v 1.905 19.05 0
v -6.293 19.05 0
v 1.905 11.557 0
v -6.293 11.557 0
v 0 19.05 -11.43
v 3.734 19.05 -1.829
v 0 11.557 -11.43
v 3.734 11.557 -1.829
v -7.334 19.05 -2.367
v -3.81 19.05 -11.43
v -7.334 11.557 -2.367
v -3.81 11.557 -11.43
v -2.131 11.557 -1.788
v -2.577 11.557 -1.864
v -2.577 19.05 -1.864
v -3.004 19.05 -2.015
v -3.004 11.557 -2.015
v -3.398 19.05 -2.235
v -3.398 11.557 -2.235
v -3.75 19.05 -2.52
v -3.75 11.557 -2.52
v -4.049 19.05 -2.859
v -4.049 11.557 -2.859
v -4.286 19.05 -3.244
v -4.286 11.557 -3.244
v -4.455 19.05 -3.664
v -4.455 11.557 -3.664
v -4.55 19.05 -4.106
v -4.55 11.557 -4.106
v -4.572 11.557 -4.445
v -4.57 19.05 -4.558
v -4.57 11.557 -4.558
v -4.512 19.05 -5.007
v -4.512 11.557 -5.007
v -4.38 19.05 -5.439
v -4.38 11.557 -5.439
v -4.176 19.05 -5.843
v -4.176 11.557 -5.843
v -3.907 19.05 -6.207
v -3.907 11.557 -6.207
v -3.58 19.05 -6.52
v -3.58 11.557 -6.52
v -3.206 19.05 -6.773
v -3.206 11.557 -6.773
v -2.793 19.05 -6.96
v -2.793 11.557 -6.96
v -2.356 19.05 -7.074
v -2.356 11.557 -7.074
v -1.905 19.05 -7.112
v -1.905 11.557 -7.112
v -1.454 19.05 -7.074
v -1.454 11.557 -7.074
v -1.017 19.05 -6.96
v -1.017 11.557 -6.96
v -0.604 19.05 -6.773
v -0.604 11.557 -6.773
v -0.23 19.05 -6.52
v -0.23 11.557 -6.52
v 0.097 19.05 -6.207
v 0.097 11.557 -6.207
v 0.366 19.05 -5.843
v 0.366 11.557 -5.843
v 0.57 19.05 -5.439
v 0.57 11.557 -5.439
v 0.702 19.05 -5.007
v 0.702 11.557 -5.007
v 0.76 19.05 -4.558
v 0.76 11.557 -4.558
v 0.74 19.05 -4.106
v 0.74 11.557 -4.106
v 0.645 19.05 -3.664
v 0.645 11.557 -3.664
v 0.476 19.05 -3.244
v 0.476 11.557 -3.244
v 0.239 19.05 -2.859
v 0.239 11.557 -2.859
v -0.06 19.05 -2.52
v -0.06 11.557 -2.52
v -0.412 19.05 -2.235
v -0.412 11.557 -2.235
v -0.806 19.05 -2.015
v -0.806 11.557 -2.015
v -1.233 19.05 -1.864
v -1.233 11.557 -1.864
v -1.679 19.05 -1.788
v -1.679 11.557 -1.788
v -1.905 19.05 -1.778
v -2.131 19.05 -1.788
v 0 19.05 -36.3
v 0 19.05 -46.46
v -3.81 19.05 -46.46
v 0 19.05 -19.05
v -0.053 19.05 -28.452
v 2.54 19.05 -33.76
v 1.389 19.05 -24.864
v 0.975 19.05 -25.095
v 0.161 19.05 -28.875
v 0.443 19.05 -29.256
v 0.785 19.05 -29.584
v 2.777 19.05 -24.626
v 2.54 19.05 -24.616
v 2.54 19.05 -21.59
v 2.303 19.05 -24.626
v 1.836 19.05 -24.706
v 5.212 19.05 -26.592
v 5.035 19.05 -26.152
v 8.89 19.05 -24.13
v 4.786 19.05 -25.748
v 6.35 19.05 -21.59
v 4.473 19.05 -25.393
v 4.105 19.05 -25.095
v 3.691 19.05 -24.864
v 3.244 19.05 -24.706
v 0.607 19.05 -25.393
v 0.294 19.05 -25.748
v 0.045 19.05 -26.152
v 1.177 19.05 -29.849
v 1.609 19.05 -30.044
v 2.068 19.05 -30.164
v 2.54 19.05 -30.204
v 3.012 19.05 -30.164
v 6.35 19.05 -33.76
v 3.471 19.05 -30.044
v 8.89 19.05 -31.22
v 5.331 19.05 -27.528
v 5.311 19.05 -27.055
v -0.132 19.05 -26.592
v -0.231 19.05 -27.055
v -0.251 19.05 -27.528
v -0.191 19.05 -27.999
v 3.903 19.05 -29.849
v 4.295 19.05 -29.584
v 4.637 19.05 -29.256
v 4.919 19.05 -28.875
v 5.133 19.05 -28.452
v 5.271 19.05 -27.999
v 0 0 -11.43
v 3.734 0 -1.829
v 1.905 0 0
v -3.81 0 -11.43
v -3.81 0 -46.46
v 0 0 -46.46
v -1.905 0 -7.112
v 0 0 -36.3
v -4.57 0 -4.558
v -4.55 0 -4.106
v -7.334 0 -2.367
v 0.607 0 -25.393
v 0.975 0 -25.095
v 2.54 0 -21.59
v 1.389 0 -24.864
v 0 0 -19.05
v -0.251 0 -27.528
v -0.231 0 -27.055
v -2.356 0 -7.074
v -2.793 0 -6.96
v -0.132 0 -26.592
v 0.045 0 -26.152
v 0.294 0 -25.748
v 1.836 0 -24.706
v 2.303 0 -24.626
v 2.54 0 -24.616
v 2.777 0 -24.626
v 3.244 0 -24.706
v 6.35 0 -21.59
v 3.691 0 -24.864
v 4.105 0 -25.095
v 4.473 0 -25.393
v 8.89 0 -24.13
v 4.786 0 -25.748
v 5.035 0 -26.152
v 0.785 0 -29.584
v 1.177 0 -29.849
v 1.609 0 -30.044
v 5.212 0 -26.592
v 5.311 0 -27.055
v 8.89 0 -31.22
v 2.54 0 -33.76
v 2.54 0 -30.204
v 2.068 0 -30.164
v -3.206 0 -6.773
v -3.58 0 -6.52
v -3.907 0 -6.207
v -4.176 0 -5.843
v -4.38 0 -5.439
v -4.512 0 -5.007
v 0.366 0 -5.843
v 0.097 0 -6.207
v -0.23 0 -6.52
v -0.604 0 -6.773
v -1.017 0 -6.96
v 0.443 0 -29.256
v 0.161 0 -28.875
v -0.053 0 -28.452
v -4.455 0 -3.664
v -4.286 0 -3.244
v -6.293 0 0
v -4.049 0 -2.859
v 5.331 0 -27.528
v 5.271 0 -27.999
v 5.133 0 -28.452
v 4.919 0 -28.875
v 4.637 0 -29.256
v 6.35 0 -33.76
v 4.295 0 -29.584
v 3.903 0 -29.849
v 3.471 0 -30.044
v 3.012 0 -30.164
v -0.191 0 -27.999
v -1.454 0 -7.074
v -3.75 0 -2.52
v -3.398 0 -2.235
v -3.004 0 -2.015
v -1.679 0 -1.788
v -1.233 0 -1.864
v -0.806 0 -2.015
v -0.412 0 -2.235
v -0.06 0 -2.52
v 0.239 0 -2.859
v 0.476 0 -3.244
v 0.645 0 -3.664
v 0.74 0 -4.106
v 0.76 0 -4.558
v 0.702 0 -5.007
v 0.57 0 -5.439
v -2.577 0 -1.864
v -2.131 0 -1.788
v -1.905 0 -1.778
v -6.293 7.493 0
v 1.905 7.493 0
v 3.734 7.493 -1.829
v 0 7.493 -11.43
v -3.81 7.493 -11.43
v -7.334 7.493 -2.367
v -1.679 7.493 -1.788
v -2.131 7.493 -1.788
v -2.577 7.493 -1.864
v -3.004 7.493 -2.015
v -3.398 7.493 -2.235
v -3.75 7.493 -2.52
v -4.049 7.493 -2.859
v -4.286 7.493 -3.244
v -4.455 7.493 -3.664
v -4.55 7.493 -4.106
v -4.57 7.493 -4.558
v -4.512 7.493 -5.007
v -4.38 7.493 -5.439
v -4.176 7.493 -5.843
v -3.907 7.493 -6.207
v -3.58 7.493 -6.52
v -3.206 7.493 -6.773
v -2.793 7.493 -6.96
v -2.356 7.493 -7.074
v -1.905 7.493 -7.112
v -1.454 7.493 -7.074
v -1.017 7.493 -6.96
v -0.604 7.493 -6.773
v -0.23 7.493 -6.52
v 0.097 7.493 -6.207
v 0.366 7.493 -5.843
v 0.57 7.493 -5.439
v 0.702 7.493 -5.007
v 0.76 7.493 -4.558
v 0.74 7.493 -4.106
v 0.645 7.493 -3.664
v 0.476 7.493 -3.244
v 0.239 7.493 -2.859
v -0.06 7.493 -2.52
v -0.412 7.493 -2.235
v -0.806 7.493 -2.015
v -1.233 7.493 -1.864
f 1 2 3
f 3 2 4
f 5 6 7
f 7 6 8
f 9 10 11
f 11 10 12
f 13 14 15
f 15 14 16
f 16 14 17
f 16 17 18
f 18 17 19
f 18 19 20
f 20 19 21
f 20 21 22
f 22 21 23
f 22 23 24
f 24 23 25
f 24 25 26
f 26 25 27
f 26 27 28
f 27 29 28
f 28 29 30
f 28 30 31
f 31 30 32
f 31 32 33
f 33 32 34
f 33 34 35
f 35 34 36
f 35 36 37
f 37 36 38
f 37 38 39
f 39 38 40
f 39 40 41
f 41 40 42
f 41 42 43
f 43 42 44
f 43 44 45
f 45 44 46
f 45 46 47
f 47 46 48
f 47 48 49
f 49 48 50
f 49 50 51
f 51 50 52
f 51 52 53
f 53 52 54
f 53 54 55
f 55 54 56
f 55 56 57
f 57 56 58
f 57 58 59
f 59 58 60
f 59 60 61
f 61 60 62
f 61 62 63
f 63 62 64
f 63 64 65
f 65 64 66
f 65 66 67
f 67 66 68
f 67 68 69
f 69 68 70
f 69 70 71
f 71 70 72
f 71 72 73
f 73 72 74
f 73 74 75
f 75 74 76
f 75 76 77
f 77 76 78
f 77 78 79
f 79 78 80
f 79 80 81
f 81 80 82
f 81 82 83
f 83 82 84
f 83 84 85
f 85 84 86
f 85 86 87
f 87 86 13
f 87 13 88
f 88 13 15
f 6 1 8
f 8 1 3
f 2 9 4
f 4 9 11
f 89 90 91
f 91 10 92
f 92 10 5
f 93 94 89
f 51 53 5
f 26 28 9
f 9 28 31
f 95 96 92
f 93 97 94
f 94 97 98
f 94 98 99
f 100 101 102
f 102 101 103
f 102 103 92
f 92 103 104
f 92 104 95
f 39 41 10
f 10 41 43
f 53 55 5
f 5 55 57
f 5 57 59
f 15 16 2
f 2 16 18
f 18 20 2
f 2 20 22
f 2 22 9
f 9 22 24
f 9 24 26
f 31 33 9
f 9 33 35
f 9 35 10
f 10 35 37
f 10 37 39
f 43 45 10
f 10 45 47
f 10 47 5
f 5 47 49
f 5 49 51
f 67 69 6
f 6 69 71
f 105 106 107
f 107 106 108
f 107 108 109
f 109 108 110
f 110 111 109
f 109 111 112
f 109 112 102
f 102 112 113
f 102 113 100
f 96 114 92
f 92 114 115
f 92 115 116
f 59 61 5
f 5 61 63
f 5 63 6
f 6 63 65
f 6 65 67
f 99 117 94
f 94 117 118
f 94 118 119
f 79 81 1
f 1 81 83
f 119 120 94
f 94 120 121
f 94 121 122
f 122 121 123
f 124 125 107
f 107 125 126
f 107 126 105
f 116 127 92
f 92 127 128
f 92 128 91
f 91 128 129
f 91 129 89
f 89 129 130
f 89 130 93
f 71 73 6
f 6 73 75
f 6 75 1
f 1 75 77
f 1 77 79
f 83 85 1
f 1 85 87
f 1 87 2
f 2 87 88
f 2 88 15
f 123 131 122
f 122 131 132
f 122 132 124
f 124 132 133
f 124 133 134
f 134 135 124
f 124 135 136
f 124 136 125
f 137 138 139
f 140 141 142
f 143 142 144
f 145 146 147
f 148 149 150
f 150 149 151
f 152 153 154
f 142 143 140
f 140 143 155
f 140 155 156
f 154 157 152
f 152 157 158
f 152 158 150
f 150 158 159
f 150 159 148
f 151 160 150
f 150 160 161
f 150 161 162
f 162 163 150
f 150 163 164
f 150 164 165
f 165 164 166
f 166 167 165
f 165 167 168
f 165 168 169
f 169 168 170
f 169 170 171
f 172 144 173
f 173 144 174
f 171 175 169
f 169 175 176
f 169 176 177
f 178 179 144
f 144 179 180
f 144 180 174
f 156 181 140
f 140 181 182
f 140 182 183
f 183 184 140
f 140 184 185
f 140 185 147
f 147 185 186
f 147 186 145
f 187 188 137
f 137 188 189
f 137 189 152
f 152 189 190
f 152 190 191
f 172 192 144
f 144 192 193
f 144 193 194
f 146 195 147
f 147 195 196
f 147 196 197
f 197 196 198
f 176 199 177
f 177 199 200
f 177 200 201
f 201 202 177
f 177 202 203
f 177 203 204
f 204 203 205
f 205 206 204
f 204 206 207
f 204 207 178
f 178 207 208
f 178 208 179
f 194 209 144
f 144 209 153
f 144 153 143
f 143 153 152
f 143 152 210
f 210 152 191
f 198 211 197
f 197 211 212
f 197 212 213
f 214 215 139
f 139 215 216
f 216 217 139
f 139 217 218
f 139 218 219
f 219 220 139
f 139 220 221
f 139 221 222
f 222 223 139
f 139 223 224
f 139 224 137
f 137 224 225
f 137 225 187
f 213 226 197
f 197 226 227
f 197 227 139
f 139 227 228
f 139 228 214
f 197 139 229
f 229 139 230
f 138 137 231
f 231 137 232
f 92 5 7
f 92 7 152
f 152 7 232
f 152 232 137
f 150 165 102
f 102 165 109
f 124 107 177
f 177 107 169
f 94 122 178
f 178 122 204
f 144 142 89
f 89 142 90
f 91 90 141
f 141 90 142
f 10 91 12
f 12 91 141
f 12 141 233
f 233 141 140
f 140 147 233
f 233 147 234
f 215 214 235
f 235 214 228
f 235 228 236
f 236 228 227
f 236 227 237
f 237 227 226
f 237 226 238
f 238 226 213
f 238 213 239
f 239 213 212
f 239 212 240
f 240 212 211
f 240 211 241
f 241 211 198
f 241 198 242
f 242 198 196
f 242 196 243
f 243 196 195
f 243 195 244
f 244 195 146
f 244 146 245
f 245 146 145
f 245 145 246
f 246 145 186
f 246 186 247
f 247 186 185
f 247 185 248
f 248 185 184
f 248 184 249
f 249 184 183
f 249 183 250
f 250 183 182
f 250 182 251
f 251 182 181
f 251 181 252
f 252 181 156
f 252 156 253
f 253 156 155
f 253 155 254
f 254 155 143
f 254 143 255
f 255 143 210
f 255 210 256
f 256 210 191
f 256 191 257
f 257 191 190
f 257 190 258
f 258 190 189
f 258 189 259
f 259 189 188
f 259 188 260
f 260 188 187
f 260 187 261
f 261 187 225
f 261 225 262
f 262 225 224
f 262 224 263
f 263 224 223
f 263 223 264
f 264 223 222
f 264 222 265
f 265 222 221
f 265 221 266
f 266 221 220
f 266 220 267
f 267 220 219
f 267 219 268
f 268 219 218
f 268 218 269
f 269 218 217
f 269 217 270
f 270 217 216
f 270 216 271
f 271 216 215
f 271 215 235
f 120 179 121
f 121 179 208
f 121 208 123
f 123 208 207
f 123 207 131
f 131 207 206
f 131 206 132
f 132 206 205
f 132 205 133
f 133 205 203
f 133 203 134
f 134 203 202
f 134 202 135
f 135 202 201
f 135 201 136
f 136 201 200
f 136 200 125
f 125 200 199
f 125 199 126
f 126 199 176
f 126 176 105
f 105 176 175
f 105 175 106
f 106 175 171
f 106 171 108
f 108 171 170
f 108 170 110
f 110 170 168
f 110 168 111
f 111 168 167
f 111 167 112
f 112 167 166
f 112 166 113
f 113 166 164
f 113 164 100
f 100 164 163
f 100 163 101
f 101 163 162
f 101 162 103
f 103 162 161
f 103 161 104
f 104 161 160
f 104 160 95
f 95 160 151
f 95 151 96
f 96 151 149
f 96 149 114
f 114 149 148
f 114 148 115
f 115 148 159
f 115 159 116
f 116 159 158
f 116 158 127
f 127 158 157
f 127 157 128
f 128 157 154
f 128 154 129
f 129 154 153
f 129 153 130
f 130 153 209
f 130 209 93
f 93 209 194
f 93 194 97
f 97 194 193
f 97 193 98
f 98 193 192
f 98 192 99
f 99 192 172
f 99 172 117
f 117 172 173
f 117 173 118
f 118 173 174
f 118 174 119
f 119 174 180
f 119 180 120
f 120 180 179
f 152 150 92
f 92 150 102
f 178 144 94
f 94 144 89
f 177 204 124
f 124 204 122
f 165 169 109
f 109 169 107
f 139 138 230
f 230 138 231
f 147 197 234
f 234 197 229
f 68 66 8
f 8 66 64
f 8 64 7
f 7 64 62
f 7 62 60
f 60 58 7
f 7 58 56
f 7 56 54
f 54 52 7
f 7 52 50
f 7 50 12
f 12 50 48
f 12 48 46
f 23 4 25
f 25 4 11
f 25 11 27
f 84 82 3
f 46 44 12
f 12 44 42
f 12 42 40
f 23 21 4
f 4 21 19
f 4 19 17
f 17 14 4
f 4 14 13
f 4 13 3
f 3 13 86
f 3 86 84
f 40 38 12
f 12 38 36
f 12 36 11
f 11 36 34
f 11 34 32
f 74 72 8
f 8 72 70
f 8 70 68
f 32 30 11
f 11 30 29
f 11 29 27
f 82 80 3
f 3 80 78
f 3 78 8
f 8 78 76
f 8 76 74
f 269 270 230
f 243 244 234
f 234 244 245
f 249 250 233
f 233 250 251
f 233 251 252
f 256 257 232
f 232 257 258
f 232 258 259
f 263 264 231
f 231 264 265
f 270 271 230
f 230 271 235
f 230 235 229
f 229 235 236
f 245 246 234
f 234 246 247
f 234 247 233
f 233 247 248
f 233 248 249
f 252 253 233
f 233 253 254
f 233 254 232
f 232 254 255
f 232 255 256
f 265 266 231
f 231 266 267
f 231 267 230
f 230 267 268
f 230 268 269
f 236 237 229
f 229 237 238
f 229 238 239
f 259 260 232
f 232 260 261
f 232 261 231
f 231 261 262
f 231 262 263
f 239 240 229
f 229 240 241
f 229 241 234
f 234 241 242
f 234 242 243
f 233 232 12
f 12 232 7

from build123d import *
from OCP.BRepFilletAPI import BRepFilletAPI_MakeChamfer

# Parameters (mm, degrees)
SKETCH1_R           = 2.794
SKETCH1_R_2         = 2.667
BOSS_EXTRUDE1_DEPTH = 19.05
CHAMFER1_SIZE       = 2.54
CHAMFER2_SIZE       = 2.54
CHAMFER2_SIZE2      = 1.962221924
SKETCH2_W           = 11.068186497
SKETCH2_H           = 4.064
NOTCH_DEPTH         = 11.43


with BuildPart() as part:
    # Sketch1 → Boss-Extrude1 (new body)
    with BuildSketch(Plane(origin=(0, 0, 0), x_dir=(1, 0, 0), z_dir=(0, 1, 0))):
        Polygon((-3.81, 46.459871133), (0, 46.459871133), (0, 33.759871133), (8.89, 33.759871133), (8.89, 21.59), (0, 21.59), (0, 11.43), (4.445, 0), (-8.255, 0), (-3.81, 11.43), align=None)
        with Locations(Location((2.54, 27.409871133, 0), (0, 0, 90))):
            Circle(SKETCH1_R, mode=Mode.SUBTRACT)
        with Locations(Location((-1.905, 4.445, 0), (0, 0, 90))):
            Circle(SKETCH1_R_2, mode=Mode.SUBTRACT)
    extrude(amount=BOSS_EXTRUDE1_DEPTH)

    # Chamfer1
    chamfer1_edges = [part.edges().sort_by_distance(p)[0] for p in [
        (0, 9.525, -21.59),
        (8.89, 9.525, -21.59),
        (8.89, 9.525, -33.759871133),
        (0, 9.525, -33.759871133),
    ]]
    chamfer(chamfer1_edges, length=CHAMFER1_SIZE)

    # Chamfer2: one chamfer whose edges measure the first distance from different faces: ONE call of the kernel's chamfer builder (chamfer() names one face for all edges)
    chamfer2_edges_1 = [part.edges().sort_by_distance(p)[0] for p in [
        (4.445, 9.525, 0),
    ]]
    chamfer2_side_1 = [part.faces().sort_by_distance(p)[0] for p in [
        (-1.905, 9.525, 0),
    ]]
    chamfer2_edges_2 = [part.edges().sort_by_distance(p)[0] for p in [
        (-8.255, 9.525, 0),
    ]]
    chamfer2_side_2 = [part.faces().sort_by_distance(p)[0] for p in [
        (-6.0325, 9.525, -5.715),
    ]]
    chamfer2 = BRepFilletAPI_MakeChamfer(part.part.solid().wrapped)
    for e in chamfer2_edges_1:
        chamfer2.Add(CHAMFER2_SIZE, CHAMFER2_SIZE2, e.wrapped, chamfer2_side_1[0].wrapped)  # the first distance lies on this face
    for e in chamfer2_edges_2:
        chamfer2.Add(CHAMFER2_SIZE, CHAMFER2_SIZE2, e.wrapped, chamfer2_side_2[0].wrapped)  # the first distance lies on this face
    add(Compound.cast(chamfer2.Shape()), mode=Mode.REPLACE)

    # Sketch2 → notch (cut)
    with BuildSketch(Plane.XY):
        with Locations((-1.800293249, 9.525)):
            Rectangle(SKETCH2_W, SKETCH2_H)
    extrude(amount=-NOTCH_DEPTH, mode=Mode.SUBTRACT)


solid = part.part
